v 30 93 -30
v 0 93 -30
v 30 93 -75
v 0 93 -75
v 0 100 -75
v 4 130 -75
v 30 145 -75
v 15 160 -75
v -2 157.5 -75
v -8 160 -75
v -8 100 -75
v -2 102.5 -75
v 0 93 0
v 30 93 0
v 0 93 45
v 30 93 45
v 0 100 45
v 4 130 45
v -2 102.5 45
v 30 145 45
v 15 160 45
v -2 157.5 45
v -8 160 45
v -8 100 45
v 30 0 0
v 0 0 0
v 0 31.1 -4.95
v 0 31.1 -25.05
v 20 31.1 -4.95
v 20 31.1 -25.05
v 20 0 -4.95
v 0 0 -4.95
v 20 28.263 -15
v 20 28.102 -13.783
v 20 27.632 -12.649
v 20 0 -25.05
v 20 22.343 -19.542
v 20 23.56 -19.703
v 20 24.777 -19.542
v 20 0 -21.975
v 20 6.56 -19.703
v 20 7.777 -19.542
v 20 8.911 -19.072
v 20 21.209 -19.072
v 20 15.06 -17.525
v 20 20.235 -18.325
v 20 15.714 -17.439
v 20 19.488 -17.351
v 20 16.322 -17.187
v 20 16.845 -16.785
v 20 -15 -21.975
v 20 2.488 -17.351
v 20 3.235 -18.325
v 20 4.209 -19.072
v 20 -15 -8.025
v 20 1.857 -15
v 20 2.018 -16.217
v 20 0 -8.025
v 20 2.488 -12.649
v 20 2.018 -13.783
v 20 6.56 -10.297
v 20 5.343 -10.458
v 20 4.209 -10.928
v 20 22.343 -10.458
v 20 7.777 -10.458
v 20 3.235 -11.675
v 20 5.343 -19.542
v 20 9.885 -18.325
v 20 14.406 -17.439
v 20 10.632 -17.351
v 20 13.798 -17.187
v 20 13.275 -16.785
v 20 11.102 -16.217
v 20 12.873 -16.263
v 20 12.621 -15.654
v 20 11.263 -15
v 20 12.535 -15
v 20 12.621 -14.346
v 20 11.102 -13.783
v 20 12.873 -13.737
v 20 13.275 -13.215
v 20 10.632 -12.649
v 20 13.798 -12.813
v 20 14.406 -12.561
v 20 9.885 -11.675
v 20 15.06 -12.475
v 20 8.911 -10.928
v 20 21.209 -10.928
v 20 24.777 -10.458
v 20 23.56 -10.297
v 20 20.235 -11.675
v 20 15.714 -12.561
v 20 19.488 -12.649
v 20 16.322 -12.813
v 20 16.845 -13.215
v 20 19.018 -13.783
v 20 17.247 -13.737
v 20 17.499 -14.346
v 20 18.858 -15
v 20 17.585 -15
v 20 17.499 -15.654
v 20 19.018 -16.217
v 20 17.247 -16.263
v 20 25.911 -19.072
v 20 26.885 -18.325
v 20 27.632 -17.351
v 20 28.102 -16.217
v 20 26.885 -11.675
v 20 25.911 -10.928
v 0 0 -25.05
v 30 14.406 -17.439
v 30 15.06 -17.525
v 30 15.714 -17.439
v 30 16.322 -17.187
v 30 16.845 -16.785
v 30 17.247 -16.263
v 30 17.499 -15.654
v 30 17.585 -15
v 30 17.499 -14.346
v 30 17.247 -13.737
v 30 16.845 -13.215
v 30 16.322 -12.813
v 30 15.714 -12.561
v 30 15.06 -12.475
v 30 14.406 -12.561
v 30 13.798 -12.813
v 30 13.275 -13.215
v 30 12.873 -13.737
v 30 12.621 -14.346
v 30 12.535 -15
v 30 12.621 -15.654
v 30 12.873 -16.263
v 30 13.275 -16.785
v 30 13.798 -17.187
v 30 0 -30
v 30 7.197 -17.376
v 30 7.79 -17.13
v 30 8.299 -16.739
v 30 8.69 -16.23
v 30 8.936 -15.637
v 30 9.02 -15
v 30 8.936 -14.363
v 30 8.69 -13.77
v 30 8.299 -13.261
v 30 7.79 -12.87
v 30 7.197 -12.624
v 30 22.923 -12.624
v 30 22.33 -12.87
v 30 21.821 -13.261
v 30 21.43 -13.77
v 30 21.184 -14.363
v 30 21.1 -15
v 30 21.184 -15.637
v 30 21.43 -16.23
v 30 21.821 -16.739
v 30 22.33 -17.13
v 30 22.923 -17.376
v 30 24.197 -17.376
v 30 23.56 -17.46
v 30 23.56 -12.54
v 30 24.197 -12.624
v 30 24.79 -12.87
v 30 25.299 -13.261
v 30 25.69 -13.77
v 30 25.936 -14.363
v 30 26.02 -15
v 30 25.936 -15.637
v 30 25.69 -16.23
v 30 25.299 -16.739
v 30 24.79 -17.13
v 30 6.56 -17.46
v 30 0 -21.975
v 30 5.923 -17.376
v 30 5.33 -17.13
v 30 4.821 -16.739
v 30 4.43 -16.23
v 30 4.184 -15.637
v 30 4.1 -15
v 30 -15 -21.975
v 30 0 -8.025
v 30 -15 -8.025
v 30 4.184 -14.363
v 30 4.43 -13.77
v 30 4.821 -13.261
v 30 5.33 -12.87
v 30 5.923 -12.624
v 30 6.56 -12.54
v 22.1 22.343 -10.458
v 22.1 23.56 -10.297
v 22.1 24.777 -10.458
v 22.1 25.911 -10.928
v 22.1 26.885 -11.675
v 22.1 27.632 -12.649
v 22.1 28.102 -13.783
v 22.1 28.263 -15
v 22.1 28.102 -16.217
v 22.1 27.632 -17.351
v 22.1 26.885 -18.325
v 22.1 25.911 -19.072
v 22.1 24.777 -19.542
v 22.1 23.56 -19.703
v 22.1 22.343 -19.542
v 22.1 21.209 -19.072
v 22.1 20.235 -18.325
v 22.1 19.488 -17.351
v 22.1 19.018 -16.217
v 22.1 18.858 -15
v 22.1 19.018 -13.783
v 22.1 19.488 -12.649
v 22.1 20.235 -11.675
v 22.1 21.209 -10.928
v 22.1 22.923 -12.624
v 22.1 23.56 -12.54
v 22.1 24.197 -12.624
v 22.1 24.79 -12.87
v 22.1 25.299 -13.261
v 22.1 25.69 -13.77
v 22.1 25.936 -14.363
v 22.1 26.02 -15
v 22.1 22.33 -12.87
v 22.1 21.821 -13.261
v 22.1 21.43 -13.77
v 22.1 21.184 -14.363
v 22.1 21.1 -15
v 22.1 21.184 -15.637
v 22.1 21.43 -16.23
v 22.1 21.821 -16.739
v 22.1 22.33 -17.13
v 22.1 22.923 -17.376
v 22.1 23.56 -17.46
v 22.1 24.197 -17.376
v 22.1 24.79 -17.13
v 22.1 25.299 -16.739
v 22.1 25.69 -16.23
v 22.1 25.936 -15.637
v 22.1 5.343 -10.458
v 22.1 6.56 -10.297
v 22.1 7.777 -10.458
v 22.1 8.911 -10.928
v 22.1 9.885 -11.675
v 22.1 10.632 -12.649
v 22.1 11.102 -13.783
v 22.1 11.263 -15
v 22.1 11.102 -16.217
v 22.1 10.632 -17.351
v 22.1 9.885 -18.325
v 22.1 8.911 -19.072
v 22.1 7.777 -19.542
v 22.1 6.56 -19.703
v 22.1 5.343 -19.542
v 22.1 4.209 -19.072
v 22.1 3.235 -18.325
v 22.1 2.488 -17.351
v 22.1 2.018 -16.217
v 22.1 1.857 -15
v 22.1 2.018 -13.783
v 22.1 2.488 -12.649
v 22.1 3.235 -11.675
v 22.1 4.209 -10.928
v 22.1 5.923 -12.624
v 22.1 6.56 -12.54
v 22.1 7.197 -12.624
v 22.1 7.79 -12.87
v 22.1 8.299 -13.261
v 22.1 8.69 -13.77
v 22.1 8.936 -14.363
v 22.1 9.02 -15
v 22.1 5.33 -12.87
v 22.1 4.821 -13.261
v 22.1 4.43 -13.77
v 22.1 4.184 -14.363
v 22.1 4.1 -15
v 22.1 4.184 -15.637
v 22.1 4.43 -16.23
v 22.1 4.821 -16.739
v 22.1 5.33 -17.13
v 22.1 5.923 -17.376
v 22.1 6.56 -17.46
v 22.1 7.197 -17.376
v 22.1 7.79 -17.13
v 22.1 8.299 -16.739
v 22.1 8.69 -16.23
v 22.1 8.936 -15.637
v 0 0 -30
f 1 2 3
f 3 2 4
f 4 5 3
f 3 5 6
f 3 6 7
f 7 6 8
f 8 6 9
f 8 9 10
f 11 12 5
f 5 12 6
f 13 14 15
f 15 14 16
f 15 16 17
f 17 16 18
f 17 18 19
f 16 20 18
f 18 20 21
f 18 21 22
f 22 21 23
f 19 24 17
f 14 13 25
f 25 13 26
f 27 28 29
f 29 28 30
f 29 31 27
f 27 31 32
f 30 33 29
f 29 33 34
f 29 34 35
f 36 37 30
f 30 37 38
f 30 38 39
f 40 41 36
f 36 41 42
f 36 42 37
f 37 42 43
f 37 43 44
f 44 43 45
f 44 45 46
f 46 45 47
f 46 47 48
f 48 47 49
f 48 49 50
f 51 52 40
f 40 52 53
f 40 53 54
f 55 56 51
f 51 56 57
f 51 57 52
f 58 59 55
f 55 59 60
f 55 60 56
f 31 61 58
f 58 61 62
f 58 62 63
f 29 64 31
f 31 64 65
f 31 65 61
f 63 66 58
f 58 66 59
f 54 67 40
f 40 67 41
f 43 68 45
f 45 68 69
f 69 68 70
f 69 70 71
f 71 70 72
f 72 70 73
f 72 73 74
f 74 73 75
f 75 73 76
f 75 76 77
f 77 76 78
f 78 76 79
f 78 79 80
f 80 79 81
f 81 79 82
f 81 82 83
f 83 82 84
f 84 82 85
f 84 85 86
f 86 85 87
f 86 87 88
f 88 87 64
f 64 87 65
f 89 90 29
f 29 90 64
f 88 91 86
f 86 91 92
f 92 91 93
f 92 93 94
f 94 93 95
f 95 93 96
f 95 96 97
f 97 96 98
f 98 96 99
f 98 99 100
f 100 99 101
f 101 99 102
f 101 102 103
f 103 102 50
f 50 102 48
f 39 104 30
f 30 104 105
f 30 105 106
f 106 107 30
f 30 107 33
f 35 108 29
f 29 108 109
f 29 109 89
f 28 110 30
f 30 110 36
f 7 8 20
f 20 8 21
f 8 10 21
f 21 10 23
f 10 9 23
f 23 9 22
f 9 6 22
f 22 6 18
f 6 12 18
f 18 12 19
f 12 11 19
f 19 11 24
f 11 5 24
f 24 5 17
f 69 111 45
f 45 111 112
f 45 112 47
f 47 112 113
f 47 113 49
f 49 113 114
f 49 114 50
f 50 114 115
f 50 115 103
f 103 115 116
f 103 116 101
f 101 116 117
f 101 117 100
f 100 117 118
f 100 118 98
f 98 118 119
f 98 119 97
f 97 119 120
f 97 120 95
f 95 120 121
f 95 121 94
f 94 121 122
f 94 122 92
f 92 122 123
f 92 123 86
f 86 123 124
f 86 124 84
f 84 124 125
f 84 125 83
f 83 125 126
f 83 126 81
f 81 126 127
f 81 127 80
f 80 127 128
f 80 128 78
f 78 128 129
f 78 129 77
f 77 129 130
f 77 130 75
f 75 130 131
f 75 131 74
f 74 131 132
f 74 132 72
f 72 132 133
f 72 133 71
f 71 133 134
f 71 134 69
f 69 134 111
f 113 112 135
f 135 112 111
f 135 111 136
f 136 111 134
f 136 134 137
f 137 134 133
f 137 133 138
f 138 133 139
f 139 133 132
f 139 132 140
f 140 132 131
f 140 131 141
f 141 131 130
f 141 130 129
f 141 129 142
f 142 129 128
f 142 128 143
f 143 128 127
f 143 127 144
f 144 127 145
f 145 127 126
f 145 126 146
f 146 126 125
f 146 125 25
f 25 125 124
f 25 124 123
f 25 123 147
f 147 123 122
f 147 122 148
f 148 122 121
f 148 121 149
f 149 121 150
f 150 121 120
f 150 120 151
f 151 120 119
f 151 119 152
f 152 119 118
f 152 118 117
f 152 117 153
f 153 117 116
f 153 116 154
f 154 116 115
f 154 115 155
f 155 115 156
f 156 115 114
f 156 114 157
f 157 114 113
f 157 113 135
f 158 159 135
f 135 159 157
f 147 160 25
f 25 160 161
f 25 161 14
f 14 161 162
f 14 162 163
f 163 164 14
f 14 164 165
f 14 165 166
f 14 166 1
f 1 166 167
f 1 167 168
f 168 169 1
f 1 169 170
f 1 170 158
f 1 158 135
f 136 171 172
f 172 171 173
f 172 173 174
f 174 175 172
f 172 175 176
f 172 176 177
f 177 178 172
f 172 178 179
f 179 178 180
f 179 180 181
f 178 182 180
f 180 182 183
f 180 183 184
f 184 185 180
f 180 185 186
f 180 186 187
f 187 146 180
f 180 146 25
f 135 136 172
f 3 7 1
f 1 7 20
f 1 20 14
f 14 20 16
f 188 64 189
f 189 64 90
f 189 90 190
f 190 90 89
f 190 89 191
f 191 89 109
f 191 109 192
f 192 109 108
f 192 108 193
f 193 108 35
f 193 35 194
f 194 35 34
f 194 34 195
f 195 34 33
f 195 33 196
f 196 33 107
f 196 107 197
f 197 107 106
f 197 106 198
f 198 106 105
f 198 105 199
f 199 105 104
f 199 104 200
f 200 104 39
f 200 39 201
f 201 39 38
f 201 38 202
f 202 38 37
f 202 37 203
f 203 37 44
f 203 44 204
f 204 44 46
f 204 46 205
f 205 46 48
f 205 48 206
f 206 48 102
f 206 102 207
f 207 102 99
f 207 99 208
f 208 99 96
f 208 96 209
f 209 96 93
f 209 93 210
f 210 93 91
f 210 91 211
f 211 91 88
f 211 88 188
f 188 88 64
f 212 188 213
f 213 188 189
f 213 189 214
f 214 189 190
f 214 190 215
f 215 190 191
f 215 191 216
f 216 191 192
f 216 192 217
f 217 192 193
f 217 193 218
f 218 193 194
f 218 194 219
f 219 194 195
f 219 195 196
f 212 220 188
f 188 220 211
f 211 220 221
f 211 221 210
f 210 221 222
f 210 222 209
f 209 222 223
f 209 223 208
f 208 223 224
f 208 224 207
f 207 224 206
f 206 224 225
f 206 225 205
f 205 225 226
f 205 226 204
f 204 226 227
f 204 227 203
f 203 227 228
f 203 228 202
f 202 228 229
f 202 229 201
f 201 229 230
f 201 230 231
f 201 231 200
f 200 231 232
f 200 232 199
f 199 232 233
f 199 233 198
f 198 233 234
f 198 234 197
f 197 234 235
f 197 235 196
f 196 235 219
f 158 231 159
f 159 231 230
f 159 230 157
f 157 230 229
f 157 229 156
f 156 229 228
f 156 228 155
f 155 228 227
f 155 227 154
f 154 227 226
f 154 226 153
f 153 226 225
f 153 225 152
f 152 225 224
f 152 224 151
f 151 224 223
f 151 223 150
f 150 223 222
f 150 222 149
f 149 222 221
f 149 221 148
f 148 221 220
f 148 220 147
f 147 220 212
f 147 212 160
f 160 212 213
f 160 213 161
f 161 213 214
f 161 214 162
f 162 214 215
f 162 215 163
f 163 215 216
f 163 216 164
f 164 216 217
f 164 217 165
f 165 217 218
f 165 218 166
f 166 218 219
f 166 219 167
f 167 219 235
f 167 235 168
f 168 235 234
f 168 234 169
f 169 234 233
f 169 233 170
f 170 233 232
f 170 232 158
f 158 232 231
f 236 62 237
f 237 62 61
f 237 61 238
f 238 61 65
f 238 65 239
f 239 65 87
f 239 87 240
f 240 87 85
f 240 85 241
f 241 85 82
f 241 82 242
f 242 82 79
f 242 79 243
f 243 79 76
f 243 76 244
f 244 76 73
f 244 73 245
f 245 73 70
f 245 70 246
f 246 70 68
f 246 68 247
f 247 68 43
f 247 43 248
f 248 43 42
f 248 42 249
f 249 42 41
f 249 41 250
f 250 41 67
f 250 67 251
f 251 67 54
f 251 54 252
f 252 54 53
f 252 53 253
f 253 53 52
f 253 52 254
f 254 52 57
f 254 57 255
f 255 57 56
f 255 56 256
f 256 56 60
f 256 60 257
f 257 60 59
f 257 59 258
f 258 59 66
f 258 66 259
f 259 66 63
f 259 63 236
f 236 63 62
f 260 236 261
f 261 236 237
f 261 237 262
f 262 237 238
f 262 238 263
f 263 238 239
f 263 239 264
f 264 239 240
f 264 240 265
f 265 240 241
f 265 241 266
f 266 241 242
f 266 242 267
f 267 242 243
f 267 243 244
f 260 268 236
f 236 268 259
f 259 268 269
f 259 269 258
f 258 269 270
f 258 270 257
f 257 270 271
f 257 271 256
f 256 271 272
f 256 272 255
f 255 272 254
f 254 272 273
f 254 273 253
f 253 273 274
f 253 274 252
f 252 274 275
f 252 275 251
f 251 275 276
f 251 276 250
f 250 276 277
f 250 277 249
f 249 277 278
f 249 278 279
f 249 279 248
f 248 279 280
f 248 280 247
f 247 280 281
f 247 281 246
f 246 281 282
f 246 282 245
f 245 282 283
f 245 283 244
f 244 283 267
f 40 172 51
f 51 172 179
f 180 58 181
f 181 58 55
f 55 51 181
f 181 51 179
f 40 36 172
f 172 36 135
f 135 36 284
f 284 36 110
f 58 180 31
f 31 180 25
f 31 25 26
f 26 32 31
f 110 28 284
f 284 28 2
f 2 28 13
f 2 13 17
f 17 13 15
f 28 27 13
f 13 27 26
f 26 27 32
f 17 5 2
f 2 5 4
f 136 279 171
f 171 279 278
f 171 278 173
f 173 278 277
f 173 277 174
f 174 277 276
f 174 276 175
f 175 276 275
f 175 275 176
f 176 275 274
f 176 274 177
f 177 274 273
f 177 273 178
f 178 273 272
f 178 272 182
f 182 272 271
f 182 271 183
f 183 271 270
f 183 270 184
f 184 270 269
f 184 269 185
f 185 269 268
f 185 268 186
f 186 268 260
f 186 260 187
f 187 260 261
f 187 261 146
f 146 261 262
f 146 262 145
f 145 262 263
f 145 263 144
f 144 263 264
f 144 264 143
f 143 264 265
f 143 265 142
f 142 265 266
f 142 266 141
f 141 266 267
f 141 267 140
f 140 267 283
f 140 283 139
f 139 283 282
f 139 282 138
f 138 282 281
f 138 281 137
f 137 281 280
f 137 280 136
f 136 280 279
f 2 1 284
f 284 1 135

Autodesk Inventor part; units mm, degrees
ref_plane "YZ Plane" through (0, 0, 0) normal (1, 0, 0) x (0, 1, 0)
ref_plane "XZ Plane" through (0, 0, 0) normal (0, 1, 0) x (-1, 0, 0)
sketch "Sketch1" plane through (0, 0, 0) normal (0, 0, 1) x (1, 0, 0)
  line L0 (0, 0) -> (25, 0)
  line L1 (25, 0) -> (25, 40)
  line L2 (25, 40) -> (0, 40)
  line L3 (0, 40) -> (0, 0)
  dimension "d1" = 25
  dimension "d2" = 40
  dimension "d3" = 25
extrude "Extrusion1" add sketch "Sketch1" against normal blind 30
sketch "Sketch2" plane through (25, 0, 0) normal (1, 0, 0) x (0, 0, -1)
  line L0 (0, 0) -> (30, 0) projected
  circle A0 centre (15, 6.56) radius 2.46
extrude "Extrusion2" cut sketch "Sketch2" against normal blind 30
sketch "Sketch3" plane through (0, 0, 0) normal (-1, 0, 0) x (0, 0, 1)
  line L0 (0, 0) -> (-30, 0) projected
  line L1 (-25.05, 0) -> (-4.95, 0)
  line L2 (-4.95, 0) -> (-4.95, 33.12)
  line L3 (-4.95, 33.12) -> (-25.05, 33.12)
  line L4 (-25.05, 33.12) -> (-25.05, 0)
  dimension "d11" = 20.1
extrude "Extrusion3" cut sketch "Sketch3" against normal blind 20
sketch "Sketch4" plane through (0, 0, 0) normal (0, -1, 0) x (1, 0, 0)
  line L0 (20, -4.95) -> (20, -25.05) projected
  line L1 (20, -15) -> (25, -15)
  line L2 (25, 0) -> (25, -30) projected
  line L3 (20, -8.025) -> (25, -8.025)
  line L4 (25, -8.025) -> (25, -21.975)
  line L5 (25, -21.975) -> (20, -21.975)
  line L6 (20, -21.975) -> (20, -8.025)
  line L7 (20, -8.025) -> (25, -21.975) construction
  line L8 (25, -8.025) -> (20, -21.975) construction
  line L9 (25, -12.54) -> (25, -17.46) projected
  point P0 (0, 0)
  point P1 (22.5, -15)
  dimension "d14" = 13.95
extrude "Extrusion4" add sketch "Sketch4" along normal blind 15
sketch "Sketch5" plane through (20, 0, 0) normal (-1, 0, 0) x (0, 0, 1)
  circle A0 centre (-15, 6.56) radius 2.46 projected
  circle A1 centre (-15, 6.56) radius 4.7025
  circle A2 centre (-15, 6.56) radius 2.46 projected
  circle A3 centre (-15, 6.56) radius 2.46
  point P0 (0, 0)
  dimension "d17" = 9.405
extrude "Extrusion5" cut sketch "Sketch5" against normal blind 2.1
sketch "Sketch6" plane through (25, 0, 0) normal (1, 0, 0) x (0, 0, -1)
  circle A0 centre (15, 6.56) radius 4.7025 projected
  line L0 (15, 6.56) -> (15, 23.56)
  circle A1 centre (15, 23.56) radius 2.46
  point P0 (0, 0)
  dimension "d20" = 17
  dimension "d21" = 4.92
extrude "Extrusion6" cut sketch "Sketch6" against normal blind 10 contours A1
sketch "Sketch7" plane through (20, 0, 0) normal (-1, 0, 0) x (0, 0, 1)
  circle A0 centre (-15, 23.56) radius 2.46 projected
  circle A1 centre (-15, 23.56) radius 4.7025
  point P0 (0, 0)
  dimension "d24" = 9.405
extrude "Extrusion7" cut sketch "Sketch7" against normal blind 2.1
sketch "Sketch9" plane through (25, 0, 0) normal (1, 0, 0) x (0, 0, -1)
  circle A0 centre (15, 6.56) radius 2.46 projected
  circle A1 centre (15, 6.56) radius 2.46
  circle A2 centre (15, 23.56) radius 2.46 projected
  circle A3 centre (15, 23.56) radius 2.46
  line L0 (30, 40) -> (30, 0) projected
  line L1 (30, 0) -> (30, 40)
  line L2 (30, 40) -> (0, 40)
  line L3 (0, 40) -> (0, 0)
  line L4 (0, 0) -> (8.025, 0) projected
  line L5 (21.975, 0) -> (21.975, -15)
  line L6 (21.975, -15) -> (8.025, -15)
  line L7 (8.025, -15) -> (8.025, 0)
  line L8 (0, 0) -> (8.025, 0)
  line L9 (21.975, 0) -> (30, 0)
extrude "Extrusion8" add sketch "Sketch9" along normal blind 5
sketch "Sketch10" plane through (0, 40, 0) normal (0, 1, 0) x (1, 0, 0)
  line L0 (0, 30) -> (30, 30) projected
  line L1 (30, 0) -> (0, 0) projected
  line L2 (0, 30) -> (30, 30)
  line L3 (30, 30) -> (30, 0)
  line L4 (30, 0) -> (0, 0)
  line L5 (0, 0) -> (0, 30)
extrude "Extrusion9" add sketch "Sketch10" along normal blind 30
sketch "Sketch12" plane through (30, 0, 0) normal (1, 0, 0) x (0, 0, -1)
  circle A0 centre (15, 6.56) radius 2.46 projected
  line L0 (15, 6.56) -> (15, 15.06)
  circle A1 centre (15, 15.06) radius 2.525
  point P0 (0, 0)
  dimension "d31" = 8.5
  dimension "d33" = 5.05
extrude "Extrusion10" cut sketch "Sketch12" against normal blind 30 contours A1
sketch "Sketch14" plane through (0, 0, 0) normal (0, 0, 1) x (1, 0, 0)
  line L0 (30, 70) -> (0, 70) projected
  line L1 (0, 100) -> (-8, 100)
  line L2 (30, 0) -> (30, 70) projected
  line L3 (30, 118) -> (30, 70)
  line L4 (30, 105) -> (30, 100)
  line L5 (0, 70) -> (30, 70) projected
  line L6 (0, 70) -> (0, 100)
  line L7 (30, 122.5) -> (30, 118)
  line L8 (30, 70) -> (30, 145)
  line L9 (-2, 157.5) -> (-8, 160)
  line L10 (-2, 102.5) -> (-8, 100)
  line L11 (4, 130) -> (-2, 102.5)
  line L12 (4, 130) -> (-2, 157.5)
  line L13 (-8, 160) -> (15, 160)
  line L14 (30, 145) -> (15, 160)
  point P0 (0, 0)
  dimension "d47" = 30
extrude "Extrusion12" add sketch "Sketch14" against normal blind 30
sketch "Sketch15" plane through (0, 0, -25.05) normal (-1, 0, 0) x (0, 0, 1)
  line L0 (0, 33.12) -> (20.1, 33.12) projected
  line L1 (20.1, 33.12) -> (20.1, 0) projected
  line L2 (0, 33.12) -> (20.1, 33.12)
  line L3 (20.1, 33.12) -> (20.1, 31.1)
  line L4 (20.1, 31.1) -> (0, 31.1)
  line L5 (0, 31.1) -> (0, 33.12)
  point P0 (25.05, 0)
  dimension "d57" = 2.02
extrude "Extrusion13" add sketch "Sketch15" against normal blind 20
sketch "Sketch27" plane through (0, 0, 0) normal (0, 0, 1) x (1, 0, 0)
  point P0 (0, 0)
sketch "Sketch28" plane through (0, 0, 0) normal (0, 0, 1) x (1, 0, 0)
  line L0 (0, 100) -> (-8, 100) projected
  line L1 (0, 100) -> (-8, 100)
  line L2 (-8, 100) -> (-2, 102.5) projected
  line L3 (-8, 100) -> (-2, 102.5)
  line L4 (-2, 102.5) -> (4, 130) projected
  line L5 (-2, 102.5) -> (4, 130)
  line L6 (4, 130) -> (-2, 157.5) projected
  line L7 (4, 130) -> (-2, 157.5)
  line L8 (-2, 157.5) -> (-8, 160) projected
  line L9 (-2, 157.5) -> (-8, 160)
  line L10 (-8, 160) -> (15, 160) projected
  line L11 (-8, 160) -> (15, 160)
  line L12 (15, 160) -> (30, 145) projected
  line L13 (15, 160) -> (30, 145)
  line L14 (30, 145) -> (30, 93)
  line L15 (30, 0) -> (30, 145) projected
  line L16 (30, 93) -> (0, 93)
  line L17 (0, 0) -> (0, 100) projected
  line L18 (0, 93) -> (0, 100)
  dimension "d98" = 52
extrude "Extrusion14" add sketch "Sketch28" along normal blind 45
ref_plane "Work Plane1" through (0, 0, -15) normal (0, 0, 1) x (1, 0, 0)
mirror "Mirror1" about plane through (0, 0, -15) normal (0, 0, 1) of "Extrusion14"
properties part number "55mm_x_120mm"
